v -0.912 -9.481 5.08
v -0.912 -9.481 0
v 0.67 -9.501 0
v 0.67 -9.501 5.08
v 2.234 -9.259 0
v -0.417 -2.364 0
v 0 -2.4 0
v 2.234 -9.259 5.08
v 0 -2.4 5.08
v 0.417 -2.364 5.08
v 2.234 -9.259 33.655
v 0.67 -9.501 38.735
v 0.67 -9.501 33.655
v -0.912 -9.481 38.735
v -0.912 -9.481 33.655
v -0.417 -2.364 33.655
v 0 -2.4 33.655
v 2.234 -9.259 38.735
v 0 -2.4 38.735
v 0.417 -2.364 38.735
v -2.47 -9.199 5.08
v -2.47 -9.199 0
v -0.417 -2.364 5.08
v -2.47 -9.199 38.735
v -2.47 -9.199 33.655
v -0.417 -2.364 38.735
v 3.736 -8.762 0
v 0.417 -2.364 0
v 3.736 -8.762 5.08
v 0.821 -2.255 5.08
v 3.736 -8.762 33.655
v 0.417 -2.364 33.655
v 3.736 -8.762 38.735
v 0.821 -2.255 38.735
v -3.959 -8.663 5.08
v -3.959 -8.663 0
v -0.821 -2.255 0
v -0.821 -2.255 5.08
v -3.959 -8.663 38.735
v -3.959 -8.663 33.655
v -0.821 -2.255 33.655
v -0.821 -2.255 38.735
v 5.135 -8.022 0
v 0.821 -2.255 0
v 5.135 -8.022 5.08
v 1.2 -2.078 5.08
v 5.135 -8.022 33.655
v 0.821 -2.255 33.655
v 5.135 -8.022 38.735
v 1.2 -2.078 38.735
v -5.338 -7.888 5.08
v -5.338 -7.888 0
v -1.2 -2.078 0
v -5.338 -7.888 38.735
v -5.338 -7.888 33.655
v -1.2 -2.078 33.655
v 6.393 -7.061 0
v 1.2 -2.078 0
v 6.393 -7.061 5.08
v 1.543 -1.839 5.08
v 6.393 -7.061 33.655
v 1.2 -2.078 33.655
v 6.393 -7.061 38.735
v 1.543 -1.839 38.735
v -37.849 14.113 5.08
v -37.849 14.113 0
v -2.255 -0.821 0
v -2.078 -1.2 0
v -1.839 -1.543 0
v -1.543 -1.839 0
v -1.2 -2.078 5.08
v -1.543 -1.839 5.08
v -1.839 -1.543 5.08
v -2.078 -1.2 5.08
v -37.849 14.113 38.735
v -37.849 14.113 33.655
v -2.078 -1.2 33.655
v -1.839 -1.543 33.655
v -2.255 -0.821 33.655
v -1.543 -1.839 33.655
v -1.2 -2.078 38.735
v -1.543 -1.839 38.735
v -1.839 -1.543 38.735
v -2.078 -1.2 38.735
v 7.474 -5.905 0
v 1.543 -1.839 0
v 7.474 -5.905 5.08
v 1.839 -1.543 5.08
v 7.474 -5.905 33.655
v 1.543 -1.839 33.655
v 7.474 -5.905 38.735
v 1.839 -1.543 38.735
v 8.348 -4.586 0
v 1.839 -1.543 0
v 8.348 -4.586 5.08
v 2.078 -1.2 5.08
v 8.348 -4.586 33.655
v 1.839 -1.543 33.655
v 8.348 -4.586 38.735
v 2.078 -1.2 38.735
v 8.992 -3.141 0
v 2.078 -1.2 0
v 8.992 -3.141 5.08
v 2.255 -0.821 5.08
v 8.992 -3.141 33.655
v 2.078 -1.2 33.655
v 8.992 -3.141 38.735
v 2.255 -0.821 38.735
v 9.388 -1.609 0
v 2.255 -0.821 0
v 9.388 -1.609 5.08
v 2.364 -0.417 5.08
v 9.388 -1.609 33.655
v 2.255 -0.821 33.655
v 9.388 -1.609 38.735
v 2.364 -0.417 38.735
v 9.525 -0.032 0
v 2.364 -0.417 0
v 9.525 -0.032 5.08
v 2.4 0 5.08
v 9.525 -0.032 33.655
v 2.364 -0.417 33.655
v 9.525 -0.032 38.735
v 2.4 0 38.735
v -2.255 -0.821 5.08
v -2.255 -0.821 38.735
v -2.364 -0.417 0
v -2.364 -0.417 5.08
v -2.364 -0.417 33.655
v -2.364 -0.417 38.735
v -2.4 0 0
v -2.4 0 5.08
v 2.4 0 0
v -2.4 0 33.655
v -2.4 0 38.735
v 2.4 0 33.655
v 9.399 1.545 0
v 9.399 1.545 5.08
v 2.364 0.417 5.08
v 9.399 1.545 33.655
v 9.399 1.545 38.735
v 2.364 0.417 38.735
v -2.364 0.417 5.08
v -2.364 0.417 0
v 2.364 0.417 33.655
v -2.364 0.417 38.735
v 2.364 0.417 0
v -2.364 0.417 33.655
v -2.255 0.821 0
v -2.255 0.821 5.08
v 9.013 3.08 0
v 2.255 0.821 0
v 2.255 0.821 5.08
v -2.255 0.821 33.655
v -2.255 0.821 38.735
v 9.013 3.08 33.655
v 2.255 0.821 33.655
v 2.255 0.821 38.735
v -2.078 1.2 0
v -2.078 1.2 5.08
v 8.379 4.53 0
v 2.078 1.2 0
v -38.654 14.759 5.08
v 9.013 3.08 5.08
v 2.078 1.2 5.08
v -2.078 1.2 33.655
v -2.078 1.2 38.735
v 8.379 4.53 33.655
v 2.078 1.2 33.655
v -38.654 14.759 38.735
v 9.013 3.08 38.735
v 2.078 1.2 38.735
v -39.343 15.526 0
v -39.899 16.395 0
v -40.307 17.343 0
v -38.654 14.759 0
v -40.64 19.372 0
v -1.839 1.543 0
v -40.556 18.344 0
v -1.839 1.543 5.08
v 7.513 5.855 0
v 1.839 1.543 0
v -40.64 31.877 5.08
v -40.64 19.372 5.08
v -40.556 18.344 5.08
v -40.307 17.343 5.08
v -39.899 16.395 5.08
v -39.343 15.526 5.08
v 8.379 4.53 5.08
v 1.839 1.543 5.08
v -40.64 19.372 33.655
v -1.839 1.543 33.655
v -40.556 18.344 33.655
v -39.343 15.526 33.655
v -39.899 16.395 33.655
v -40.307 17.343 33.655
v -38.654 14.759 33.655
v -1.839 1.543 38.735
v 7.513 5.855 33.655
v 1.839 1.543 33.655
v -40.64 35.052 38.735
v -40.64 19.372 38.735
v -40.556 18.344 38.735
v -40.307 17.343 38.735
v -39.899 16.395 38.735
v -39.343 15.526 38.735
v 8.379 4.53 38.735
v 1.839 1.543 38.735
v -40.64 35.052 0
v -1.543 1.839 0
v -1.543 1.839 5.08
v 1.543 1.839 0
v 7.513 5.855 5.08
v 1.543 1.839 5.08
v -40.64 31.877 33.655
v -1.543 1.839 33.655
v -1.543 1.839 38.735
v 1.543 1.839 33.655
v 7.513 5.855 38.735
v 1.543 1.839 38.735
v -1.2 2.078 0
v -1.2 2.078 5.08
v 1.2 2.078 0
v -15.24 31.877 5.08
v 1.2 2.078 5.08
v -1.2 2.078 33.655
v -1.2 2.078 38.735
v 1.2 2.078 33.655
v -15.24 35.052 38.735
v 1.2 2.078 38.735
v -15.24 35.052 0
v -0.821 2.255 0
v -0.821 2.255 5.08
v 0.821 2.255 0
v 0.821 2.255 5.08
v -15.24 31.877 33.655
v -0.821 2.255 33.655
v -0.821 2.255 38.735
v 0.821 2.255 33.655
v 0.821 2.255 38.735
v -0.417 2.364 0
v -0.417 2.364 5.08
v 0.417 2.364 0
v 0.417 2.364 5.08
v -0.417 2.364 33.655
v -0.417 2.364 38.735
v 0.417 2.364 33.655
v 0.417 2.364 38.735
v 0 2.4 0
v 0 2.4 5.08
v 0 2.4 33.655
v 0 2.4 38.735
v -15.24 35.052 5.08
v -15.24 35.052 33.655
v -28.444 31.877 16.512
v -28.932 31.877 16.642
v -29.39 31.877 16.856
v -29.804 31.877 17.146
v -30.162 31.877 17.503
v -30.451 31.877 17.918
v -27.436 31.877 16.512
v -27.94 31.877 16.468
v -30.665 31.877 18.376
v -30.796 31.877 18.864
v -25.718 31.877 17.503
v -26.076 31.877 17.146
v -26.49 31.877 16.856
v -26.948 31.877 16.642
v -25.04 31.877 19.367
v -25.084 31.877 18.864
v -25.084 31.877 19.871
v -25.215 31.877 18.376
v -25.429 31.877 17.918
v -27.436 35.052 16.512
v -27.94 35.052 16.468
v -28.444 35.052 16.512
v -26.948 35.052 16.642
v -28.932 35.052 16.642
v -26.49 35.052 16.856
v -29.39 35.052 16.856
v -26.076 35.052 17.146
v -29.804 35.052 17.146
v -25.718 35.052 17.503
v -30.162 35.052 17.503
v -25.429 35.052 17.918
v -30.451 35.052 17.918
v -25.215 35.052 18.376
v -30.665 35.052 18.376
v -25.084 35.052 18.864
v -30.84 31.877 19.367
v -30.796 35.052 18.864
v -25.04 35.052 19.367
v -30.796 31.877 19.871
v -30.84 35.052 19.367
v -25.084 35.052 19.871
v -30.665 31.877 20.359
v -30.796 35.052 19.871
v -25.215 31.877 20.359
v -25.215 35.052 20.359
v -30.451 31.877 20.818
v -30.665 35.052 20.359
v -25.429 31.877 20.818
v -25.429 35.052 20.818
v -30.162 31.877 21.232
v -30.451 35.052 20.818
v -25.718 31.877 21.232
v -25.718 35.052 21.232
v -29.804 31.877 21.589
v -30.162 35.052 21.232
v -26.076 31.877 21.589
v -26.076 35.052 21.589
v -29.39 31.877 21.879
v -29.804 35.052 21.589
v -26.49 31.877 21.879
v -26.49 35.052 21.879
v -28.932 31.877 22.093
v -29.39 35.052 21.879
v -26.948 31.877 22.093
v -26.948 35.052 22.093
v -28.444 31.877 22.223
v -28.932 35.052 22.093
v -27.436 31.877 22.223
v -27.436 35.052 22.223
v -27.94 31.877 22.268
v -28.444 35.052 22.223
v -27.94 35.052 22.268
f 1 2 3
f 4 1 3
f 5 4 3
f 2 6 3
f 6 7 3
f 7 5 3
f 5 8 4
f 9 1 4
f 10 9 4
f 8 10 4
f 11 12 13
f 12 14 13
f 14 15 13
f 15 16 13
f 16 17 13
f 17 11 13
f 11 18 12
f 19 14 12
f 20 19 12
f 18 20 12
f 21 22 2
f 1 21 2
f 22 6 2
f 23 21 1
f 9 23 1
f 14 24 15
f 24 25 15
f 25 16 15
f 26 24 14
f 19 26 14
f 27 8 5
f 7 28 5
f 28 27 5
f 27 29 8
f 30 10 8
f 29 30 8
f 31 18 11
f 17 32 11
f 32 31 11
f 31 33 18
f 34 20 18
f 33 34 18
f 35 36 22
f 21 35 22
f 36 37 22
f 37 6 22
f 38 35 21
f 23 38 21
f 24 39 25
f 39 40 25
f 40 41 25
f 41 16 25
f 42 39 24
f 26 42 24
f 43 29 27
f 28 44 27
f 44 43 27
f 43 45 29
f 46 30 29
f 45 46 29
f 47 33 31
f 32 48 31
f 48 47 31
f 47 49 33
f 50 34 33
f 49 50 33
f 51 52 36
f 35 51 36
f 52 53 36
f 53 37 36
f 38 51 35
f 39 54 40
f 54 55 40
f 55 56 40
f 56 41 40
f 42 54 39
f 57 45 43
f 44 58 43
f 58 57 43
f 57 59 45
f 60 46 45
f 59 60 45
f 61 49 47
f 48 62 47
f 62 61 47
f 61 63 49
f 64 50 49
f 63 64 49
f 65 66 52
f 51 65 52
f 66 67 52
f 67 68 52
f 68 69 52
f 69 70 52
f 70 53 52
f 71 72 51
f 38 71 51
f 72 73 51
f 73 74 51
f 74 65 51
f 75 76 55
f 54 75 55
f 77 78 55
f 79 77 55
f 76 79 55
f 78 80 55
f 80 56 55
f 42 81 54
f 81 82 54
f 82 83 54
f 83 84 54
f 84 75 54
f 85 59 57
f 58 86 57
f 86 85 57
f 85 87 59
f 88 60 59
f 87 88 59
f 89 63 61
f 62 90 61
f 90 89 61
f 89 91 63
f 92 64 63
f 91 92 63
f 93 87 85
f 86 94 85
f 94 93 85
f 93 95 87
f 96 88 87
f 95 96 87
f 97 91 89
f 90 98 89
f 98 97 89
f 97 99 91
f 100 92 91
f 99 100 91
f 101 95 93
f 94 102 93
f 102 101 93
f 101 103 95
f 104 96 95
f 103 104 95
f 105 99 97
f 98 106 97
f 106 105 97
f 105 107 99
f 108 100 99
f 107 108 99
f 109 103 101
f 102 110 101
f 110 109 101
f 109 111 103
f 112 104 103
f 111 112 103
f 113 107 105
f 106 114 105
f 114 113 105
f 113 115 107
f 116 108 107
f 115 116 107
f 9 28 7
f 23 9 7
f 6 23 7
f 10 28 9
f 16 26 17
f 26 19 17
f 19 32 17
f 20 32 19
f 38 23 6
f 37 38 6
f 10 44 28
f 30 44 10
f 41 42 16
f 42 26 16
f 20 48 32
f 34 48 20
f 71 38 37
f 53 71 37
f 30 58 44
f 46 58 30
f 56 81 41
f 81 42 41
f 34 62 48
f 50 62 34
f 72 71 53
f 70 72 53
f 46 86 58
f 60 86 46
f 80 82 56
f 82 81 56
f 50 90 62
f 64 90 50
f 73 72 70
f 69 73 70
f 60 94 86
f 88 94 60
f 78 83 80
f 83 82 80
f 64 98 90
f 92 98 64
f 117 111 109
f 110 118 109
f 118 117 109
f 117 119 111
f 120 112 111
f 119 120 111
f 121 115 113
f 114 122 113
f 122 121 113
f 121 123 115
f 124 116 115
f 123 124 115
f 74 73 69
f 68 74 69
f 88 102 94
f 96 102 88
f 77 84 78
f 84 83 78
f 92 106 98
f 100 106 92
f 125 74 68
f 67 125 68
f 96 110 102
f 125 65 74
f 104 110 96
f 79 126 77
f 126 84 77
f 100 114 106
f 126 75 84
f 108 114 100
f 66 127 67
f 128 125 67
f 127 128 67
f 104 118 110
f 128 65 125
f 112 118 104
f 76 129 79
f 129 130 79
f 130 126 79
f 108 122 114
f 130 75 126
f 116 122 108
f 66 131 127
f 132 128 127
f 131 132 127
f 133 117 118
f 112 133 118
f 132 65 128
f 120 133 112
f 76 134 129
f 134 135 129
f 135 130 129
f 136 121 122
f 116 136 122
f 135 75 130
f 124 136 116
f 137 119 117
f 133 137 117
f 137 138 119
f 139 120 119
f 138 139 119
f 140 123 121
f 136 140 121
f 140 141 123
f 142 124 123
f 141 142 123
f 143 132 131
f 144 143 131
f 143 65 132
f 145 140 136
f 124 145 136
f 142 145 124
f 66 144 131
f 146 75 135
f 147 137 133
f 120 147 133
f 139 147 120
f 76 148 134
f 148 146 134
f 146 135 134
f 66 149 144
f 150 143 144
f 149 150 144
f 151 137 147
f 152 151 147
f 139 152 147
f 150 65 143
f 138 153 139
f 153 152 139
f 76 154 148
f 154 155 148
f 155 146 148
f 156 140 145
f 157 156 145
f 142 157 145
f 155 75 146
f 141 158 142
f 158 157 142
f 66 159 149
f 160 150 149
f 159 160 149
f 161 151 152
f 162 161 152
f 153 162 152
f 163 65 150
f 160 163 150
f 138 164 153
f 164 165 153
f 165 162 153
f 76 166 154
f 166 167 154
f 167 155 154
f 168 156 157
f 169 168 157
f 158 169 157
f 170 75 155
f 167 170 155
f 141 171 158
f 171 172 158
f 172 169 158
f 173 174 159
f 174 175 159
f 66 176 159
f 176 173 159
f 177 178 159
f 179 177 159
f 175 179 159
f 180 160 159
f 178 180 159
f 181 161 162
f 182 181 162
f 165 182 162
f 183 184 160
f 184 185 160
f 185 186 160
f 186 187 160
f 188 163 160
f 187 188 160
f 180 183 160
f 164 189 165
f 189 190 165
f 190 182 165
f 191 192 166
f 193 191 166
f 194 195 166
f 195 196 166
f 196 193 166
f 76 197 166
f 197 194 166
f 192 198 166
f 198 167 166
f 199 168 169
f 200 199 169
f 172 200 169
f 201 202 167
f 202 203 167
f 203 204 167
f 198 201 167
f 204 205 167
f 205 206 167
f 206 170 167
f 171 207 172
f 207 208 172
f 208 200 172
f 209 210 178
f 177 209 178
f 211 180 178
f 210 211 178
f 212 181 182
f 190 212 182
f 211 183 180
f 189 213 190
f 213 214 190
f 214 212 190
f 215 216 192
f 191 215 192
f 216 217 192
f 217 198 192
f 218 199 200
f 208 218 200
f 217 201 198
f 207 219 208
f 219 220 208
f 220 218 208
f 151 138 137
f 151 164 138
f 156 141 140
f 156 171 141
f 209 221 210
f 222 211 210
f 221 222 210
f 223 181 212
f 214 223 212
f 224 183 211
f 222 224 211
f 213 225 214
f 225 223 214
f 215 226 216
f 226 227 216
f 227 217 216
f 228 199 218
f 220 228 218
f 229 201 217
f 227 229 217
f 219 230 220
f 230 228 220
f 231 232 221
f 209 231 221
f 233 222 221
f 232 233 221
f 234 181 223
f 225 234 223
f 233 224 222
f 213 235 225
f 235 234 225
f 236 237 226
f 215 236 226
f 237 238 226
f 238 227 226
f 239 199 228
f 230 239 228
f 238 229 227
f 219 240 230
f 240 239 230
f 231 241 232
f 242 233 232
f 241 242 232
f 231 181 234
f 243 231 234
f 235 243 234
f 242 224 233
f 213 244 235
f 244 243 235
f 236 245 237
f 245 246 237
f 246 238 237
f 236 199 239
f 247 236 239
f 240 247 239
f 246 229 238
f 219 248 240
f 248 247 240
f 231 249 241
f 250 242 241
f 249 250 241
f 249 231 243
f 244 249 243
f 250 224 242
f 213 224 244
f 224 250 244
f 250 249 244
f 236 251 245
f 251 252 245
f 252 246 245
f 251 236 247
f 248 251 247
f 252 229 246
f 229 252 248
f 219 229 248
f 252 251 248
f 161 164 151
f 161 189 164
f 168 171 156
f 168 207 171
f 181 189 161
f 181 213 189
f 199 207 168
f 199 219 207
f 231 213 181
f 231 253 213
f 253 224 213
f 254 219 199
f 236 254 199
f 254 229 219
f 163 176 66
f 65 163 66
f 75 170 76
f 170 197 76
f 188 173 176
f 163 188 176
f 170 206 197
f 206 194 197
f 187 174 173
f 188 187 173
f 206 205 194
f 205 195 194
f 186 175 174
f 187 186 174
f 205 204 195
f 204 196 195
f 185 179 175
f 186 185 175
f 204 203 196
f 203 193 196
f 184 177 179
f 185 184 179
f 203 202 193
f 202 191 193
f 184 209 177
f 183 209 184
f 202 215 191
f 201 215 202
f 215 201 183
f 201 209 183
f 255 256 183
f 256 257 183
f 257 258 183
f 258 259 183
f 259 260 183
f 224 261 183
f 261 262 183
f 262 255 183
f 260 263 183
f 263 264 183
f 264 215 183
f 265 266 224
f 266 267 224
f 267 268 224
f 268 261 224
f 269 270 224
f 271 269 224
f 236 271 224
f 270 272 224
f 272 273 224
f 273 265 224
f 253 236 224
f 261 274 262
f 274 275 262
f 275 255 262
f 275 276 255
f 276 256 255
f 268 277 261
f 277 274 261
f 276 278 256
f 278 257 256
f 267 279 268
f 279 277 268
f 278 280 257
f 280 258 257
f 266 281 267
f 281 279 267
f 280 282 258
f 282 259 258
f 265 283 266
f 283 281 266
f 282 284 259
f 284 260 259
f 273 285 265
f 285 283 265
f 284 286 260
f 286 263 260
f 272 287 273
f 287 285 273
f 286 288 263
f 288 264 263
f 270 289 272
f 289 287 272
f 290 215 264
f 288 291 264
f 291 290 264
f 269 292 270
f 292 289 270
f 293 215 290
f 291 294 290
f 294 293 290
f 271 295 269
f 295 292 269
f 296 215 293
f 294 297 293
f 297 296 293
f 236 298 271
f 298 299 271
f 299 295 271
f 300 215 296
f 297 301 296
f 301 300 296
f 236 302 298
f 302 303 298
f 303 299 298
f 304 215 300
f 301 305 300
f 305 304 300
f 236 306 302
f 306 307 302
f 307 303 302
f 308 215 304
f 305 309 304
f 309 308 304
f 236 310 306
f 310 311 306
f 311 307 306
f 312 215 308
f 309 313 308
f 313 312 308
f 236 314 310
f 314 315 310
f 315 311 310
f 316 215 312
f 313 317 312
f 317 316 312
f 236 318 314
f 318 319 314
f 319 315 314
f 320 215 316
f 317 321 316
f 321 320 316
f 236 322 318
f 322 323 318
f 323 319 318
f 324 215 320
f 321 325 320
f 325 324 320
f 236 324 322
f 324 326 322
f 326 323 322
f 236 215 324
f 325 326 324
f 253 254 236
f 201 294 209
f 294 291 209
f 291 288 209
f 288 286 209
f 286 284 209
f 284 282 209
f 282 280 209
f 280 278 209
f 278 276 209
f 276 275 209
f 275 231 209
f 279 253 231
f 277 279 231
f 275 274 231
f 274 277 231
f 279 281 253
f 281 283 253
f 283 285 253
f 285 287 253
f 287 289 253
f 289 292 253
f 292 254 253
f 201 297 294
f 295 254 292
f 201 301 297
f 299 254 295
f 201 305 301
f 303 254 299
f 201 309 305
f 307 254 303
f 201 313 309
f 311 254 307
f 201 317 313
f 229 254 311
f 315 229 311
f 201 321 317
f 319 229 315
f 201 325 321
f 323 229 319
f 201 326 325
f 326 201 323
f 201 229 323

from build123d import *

# Parameters (mm, degrees)
SKETCH1_W            = 25.4
SKETCH1_H            = 19.05
SKETCH1_R            = 9.525
BOSS_EXTRUDE1_DEPTH  = 5.08
M4_CLEARANCE_HOLE1_D = 4.8
SKETCH4_W            = 25.4
SKETCH4_H            = 3.175
BOSS_EXTRUDE2_DEPTH  = 14.2875
M5_CLEARANCE_HOLE1_D = 5.8
FILLET1_R            = 6.35


with BuildPart() as part:
    # Sketch1 → Boss-Extrude1 (new body)
    with BuildSketch(Plane.XY):
        with Locations((-27.94, 25.527)):
            Rectangle(SKETCH1_W, SKETCH1_H)
        with BuildLine():
            Line((-15.24, 16.002), (-40.64, 16.002))
            Line((-40.64, 16.002), (-5.338467717, -7.888370392))
            ThreePointArc((-5.338467717, -7.888370392), (-6.957108321, 6.505710477), (7.51306662, 5.854865922))
            Line((7.51306662, 5.854865922), (-15.24, 35.052))
            Line((-15.24, 35.052), (-15.24, 16.002))
        make_face()
        Circle(SKETCH1_R)
    extrude(amount=BOSS_EXTRUDE1_DEPTH)

    # M4 Clearance Hole1 (through all)
    with Locations(Plane(origin=(0, 0, 0), x_dir=(-1, 0, 0), z_dir=(0, 0, -1))):
        with Locations((0, 0)):
            Hole(M4_CLEARANCE_HOLE1_D / 2)

    # Sketch4 → Boss-Extrude2 (add)
    with BuildSketch(Plane.XY.offset(5.08)):
        with Locations((-27.94, 33.4645)):
            Rectangle(SKETCH4_W, SKETCH4_H)
    extrude(amount=BOSS_EXTRUDE2_DEPTH)

    # Mirror3: part across plane


with BuildPart() as part_1:
    add(part.part)
    add(part.part.mirror(Plane.XY.offset(19.3675)))

    # M5 Clearance Hole1 (through all)
    with Locations(Plane(origin=(0, 35.052, 0), x_dir=(1, 0, 0), z_dir=(0, 1, 0))):
        with Locations((-27.94, -19.3675)):
            Hole(M5_CLEARANCE_HOLE1_D / 2)

    # Fillet1
    fillet1_edges = [part_1.edges().sort_by_distance(p)[0] for p in [
        (-40.64, 16.002, 2.54),
        (-40.64, 16.002, 36.195),
    ]]
    fillet(fillet1_edges, radius=FILLET1_R)


solid = part_1.part
